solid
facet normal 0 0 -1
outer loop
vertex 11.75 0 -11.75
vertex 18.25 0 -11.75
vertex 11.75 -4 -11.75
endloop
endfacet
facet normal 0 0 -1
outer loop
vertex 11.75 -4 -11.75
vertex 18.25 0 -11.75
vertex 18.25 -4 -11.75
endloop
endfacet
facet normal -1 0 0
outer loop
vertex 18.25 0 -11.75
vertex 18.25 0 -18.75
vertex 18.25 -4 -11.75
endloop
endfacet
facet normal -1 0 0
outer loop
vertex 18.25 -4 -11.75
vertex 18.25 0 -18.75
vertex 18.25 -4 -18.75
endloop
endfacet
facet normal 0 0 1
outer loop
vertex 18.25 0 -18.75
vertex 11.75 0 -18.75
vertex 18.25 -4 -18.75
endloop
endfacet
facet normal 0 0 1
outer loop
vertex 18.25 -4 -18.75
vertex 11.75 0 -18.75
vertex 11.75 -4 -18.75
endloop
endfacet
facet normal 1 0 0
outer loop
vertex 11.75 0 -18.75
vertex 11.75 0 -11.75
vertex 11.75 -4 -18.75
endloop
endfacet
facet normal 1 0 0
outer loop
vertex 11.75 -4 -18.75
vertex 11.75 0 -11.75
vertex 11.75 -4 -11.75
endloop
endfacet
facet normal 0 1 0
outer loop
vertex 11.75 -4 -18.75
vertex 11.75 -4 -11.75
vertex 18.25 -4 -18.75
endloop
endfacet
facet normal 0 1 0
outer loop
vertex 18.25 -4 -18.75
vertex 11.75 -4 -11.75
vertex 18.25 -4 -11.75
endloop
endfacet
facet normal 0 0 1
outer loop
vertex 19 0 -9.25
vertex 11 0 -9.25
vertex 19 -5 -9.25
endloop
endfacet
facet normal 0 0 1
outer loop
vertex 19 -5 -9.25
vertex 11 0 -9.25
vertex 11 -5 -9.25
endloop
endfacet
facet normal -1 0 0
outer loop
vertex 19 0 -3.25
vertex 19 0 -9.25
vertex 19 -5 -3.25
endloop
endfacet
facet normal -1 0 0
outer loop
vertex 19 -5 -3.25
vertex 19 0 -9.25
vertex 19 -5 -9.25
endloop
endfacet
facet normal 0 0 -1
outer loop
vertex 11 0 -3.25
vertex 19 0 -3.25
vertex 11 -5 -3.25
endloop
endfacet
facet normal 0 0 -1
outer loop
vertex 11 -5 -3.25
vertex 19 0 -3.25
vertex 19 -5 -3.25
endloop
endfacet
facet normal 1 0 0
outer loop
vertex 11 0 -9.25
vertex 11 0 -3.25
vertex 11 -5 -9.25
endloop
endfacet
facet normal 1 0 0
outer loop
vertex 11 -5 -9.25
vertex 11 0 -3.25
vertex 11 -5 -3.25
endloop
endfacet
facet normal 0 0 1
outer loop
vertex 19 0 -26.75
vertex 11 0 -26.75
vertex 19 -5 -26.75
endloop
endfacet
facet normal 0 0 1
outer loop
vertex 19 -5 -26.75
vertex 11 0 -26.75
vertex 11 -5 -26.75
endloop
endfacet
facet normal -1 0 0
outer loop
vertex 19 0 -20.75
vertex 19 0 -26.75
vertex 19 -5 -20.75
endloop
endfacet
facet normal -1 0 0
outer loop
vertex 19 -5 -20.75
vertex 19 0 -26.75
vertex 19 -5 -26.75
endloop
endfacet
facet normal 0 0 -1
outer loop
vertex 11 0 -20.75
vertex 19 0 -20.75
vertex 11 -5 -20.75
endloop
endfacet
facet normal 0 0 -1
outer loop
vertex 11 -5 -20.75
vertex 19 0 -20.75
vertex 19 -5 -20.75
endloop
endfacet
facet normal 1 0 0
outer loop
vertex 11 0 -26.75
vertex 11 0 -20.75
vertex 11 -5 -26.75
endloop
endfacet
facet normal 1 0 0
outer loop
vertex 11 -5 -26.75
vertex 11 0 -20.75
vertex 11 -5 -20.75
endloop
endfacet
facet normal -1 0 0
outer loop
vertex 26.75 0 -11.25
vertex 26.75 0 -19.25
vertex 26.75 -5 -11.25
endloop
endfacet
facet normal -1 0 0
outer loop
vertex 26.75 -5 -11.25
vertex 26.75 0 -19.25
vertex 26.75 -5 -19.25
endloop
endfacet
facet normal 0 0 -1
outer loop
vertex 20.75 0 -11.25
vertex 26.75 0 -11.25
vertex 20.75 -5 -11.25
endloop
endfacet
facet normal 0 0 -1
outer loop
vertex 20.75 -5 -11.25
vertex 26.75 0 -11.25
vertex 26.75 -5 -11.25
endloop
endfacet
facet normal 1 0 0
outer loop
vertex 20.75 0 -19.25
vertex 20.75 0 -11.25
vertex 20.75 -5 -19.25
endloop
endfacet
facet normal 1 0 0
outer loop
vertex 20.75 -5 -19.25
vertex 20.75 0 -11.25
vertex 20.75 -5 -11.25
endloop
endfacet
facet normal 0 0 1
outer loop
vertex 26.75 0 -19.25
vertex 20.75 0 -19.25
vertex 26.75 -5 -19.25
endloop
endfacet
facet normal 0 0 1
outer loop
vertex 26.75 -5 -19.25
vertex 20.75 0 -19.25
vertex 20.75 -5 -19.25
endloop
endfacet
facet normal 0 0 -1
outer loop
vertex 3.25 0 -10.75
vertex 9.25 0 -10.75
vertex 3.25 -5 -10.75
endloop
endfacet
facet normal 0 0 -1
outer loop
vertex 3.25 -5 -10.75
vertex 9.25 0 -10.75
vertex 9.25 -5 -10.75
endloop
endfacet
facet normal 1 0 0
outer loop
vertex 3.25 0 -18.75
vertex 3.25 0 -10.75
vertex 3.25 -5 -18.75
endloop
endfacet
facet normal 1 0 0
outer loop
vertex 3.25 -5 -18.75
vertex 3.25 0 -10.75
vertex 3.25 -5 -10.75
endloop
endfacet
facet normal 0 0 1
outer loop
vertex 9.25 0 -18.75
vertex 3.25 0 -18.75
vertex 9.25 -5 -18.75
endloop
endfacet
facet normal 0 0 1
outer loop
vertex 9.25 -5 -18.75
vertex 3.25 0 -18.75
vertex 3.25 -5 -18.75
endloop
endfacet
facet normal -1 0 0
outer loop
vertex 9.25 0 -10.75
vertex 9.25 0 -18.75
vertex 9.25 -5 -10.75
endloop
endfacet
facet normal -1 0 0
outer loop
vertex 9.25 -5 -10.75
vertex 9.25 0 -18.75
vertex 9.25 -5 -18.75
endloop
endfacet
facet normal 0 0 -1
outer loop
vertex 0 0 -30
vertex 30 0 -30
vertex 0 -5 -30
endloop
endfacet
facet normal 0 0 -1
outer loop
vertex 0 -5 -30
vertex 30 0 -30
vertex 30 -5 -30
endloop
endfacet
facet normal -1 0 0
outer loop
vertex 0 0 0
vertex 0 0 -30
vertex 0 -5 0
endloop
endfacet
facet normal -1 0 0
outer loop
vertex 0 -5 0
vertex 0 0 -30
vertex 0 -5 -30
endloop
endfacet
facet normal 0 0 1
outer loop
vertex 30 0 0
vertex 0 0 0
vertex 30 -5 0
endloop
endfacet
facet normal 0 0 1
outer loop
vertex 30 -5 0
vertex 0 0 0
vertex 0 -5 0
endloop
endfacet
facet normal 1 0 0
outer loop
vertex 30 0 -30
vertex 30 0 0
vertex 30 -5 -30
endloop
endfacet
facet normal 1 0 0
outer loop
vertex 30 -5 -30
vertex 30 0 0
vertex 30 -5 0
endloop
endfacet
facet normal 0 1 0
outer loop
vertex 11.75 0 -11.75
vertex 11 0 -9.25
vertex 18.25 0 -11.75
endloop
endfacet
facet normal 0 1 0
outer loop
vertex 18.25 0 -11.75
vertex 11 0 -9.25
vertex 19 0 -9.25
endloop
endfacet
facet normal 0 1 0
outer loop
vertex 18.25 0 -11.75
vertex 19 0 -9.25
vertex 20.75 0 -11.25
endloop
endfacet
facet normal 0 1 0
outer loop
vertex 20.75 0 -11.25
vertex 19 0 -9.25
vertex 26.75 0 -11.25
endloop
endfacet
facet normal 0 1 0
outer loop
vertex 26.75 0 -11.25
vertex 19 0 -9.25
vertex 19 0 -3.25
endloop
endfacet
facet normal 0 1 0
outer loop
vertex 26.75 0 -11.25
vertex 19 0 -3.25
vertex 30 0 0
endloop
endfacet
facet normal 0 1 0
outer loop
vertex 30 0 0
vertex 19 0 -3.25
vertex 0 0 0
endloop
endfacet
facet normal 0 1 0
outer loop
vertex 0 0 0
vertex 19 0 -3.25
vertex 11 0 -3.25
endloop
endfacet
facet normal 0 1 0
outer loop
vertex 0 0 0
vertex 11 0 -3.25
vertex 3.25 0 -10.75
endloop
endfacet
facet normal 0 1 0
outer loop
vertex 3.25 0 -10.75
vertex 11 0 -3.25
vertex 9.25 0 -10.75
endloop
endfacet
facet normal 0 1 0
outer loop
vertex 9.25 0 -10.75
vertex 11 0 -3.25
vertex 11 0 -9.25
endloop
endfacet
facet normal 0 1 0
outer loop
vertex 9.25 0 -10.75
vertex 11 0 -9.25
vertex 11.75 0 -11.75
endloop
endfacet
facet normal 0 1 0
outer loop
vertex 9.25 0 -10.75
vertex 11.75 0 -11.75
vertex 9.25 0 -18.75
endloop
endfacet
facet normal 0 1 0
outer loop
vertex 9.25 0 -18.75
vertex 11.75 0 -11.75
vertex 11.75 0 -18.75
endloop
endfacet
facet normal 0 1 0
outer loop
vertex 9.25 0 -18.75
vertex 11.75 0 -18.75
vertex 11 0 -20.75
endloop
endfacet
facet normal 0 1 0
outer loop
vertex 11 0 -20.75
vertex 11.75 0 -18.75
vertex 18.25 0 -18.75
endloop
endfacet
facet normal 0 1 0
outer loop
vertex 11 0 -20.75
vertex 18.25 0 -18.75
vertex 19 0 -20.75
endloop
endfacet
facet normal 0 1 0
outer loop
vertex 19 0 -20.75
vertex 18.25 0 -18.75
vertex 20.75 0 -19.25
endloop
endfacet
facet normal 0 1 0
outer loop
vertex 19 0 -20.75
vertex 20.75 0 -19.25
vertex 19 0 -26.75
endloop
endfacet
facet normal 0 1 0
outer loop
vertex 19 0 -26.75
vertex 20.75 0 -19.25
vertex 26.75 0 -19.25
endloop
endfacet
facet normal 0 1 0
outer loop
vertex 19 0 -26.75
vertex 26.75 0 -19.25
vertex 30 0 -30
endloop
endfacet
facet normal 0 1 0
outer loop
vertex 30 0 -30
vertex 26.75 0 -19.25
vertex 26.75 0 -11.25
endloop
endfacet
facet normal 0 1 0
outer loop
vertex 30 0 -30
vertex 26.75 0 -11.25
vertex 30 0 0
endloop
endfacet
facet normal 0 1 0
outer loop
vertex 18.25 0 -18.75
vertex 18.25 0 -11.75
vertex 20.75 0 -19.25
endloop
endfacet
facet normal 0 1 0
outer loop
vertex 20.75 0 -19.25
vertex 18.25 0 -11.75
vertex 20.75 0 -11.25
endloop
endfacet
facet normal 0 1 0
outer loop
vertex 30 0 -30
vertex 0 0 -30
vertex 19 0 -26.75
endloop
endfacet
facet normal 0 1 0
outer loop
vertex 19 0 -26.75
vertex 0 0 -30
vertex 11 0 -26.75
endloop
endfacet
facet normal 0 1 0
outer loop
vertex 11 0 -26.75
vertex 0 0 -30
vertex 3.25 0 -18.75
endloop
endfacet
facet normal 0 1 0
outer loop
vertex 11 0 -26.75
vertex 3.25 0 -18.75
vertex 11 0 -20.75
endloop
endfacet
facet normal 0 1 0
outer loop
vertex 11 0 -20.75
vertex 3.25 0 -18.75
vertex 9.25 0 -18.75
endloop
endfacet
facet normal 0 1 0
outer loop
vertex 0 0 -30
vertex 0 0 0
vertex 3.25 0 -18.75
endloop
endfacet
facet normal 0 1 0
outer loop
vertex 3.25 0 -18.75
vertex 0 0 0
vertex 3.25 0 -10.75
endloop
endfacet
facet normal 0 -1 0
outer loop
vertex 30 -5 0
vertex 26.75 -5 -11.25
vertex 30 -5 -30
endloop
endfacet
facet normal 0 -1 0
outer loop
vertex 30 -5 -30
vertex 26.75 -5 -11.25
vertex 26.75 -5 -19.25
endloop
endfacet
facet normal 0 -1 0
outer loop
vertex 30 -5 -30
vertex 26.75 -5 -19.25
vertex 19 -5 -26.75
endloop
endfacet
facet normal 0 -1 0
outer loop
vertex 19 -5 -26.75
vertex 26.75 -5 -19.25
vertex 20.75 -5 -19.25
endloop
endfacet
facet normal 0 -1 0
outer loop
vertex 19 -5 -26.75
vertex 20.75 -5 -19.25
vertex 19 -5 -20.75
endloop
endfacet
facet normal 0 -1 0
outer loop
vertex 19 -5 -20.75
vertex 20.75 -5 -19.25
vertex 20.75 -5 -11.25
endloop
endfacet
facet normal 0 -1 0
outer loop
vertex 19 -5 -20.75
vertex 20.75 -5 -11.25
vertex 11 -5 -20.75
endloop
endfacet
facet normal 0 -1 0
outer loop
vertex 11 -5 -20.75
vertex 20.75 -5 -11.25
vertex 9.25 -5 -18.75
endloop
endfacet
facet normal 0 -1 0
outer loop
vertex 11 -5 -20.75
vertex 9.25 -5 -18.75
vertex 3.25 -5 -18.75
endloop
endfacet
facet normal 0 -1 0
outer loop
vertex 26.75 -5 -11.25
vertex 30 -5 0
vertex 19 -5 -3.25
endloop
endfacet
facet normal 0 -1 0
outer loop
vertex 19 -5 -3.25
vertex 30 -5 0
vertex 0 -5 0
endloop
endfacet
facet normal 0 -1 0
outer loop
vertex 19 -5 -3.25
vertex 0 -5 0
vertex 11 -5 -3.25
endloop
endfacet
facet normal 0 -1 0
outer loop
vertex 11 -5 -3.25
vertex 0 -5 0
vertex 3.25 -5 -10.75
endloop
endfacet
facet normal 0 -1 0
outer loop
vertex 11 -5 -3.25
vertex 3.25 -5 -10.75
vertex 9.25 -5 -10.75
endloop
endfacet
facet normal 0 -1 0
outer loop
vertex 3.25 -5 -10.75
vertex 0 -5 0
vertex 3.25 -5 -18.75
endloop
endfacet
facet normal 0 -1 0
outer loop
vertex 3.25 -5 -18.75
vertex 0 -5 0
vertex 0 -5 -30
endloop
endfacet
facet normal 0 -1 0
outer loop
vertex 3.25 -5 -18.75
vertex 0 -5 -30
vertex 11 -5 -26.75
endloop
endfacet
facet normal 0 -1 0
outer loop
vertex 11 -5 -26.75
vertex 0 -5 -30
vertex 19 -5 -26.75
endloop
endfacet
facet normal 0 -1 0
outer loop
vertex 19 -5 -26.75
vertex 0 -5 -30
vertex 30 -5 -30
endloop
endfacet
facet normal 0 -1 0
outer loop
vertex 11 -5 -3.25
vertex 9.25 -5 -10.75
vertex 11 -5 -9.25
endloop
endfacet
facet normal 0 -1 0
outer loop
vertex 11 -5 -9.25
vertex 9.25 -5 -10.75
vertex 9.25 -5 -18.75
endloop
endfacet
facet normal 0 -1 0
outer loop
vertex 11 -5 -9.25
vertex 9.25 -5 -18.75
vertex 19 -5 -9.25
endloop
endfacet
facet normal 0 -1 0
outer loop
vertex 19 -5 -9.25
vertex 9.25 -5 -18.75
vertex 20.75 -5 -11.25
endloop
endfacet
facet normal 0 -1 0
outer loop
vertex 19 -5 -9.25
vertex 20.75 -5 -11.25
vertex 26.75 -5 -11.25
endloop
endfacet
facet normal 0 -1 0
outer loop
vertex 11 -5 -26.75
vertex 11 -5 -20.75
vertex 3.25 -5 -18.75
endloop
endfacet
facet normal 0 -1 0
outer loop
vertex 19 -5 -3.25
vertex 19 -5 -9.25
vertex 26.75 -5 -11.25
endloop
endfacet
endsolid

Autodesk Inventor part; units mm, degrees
ref_plane "YZ Plane" through (0, 0, 0) normal (1, 0, 0) x (0, 1, 0)
ref_plane "XZ Plane" through (0, 0, 0) normal (0, 1, 0) x (-1, 0, 0)
ref_plane "XY Plane" through (0, 0, 0) normal (0, 0, 1) x (1, 0, 0)
sketch "Sketch1" plane through (0, 0, 0) normal (0, 1, 0) x (-1, 0, 0)
  point P0 (0, 0)
sketch "Sketch2" plane through (0, 0, 0) normal (0, 1, 0) x (-1, 0, 0)
  line L0 (0, 0) -> (-30, 0)
  line L1 (-30, 0) -> (-30, -30)
  line L2 (-30, -30) -> (0, -30)
  line L3 (0, -30) -> (0, 0)
  line L4 (0, -30) -> (-30, 0) construction
  line L5 (0, 0) -> (-30, -30) construction
  line L6 (-15, -15) -> (0, -15) construction
  line L7 (-15, -15) -> (-30, -15) construction
  line L8 (-15, -15) -> (-15, -30) construction
  line L9 (-15, -15) -> (-15, 0) construction
  line L10 (-15, -15) -> (-9.25, -15) construction
  line L11 (-15, -17.4158) -> (-15, -15) construction
  line L12 (-15, -15) -> (-15, -20.75) construction
  line L13 (-15, -15) -> (-15, -9.25) construction
  line L14 (-15, -15) -> (-9.25, -15) construction
  line L15 (-15, -15) -> (-20.75, -15) construction
  line L16 (-15, -20.75) -> (-9.25, -15) construction
  line L17 (-9.25, -15) -> (-9.25, -20.75) construction
  line L18 (-9.25, -20.75) -> (-15, -20.75) construction
  line L19 (-15, -20.75) -> (-20.75, -20.75) construction
  line L20 (-20.75, -20.75) -> (-20.75, -15) construction
  line L21 (-9.25, -15) -> (-9.25, -9.25) construction
  line L22 (-15, -9.25) -> (-9.25, -9.25) construction
  line L23 (-15, -9.25) -> (-20.75, -9.25) construction
  line L24 (-20.75, -9.25) -> (-20.75, -15) construction
  line L25 (-15, -9.25) -> (-11, -9.25) construction
  line L26 (-15, -9.25) -> (-19, -9.25) construction
  line L27 (-11, -9.25) -> (-19, -9.25)
  line L28 (-11, -9.25) -> (-11, -3.25)
  line L29 (-11, -3.25) -> (-19, -3.25)
  line L30 (-19, -3.25) -> (-19, -9.25)
  line L31 (-11, -20.75) -> (-19, -20.75)
  line L32 (-19, -20.75) -> (-19, -26.75)
  line L33 (-19, -26.75) -> (-11, -26.75)
  line L34 (-11, -26.75) -> (-11, -20.75)
  line L35 (-9.25, -9.25) -> (-9.25, -10.75)
  line L36 (-9.25, -20.75) -> (-9.25, -18.75)
  line L37 (-9.25, -18.75) -> (-9.25, -19.25)
  line L38 (-9.25, -18.75) -> (-9.25, -10.75)
  line L39 (-9.25, -10.75) -> (-3.25, -10.75)
  line L40 (-3.25, -10.75) -> (-3.25, -18.75)
  line L41 (-3.25, -18.75) -> (-9.25, -18.75)
  line L42 (-9.25, -19.25) -> (-20.75, -19.25) construction
  line L43 (-20.75, -19.25) -> (-20.75, -11.25)
  line L44 (-20.75, -11.25) -> (-26.75, -11.25)
  line L45 (-26.75, -11.25) -> (-26.75, -19.25)
  line L46 (-26.75, -19.25) -> (-20.75, -19.25)
  line L47 (-9.25, -18.75) -> (-11.75, -18.75) construction
  line L48 (-11.75, -18.75) -> (-11.75, -10.75) construction
  line L49 (-11.75, -10.75) -> (-9.25, -10.75) construction
  line L50 (-20.75, -19.25) -> (-18.25, -19.25) construction
  line L51 (-18.25, -19.25) -> (-18.25, -11.25) construction
  line L52 (-18.25, -11.25) -> (-20.75, -11.25) construction
  line L53 (-9.25, -10.75) -> (-9.25, -11.75) construction
  line L54 (-9.25, -11.75) -> (-11.75, -11.75) construction
  line L55 (-20.75, -11.25) -> (-20.75, -11.75) construction
  line L56 (-20.75, -11.75) -> (-18.25, -11.75) construction
  line L57 (-11.75, -18.75) -> (-20.75, -18.75) construction
  line L58 (-18.25, -18.75) -> (-18.25, -11.75) construction
  line L59 (-15, -18.75) -> (-14.25, -18.75) construction
  line L60 (-15, -18.75) -> (-15.75, -18.75) construction
  line L61 (-11.75, -18.75) -> (-11.75, -11.75)
  line L62 (-11.75, -18.75) -> (-14.25, -18.75)
  line L63 (-11.75, -11.75) -> (-14.25, -11.75)
  line L64 (-15.75, -18.75) -> (-18.25, -18.75)
  line L65 (-18.25, -18.75) -> (-18.25, -11.75)
  line L66 (-18.25, -11.75) -> (-15.75, -11.75)
  line L67 (-14.25, -11.75) -> (-15.75, -11.75)
  line L68 (-14.25, -18.75) -> (-15.75, -18.75)
  dimension "d0" = 30
  dimension "d1" = 30
  dimension "d3" = 5.75
  dimension "d4" = 5.75
  dimension "d5" = 5.75
  dimension "d6" = 5.75
  dimension "d7" = 4
  dimension "d8" = 4
  dimension "d9" = 6
  dimension "d10" = 6
  dimension "d11" = 8
  dimension "d12" = 1.5
  dimension "d13" = 2
  dimension "d14" = 0.5
  dimension "d15" = 6
  dimension "d16" = 8
  dimension "d17" = 6
  dimension "d18" = 2.5
  dimension "d19" = 2.5
  dimension "d20" = 1
  dimension "d21" = 0.75
  dimension "d22" = 0.75
extrude "Extrusion1" add sketch "Sketch2" against normal blind 5 contours L3 L2 L1 L0 | L62 L68 L64 L65 L66 L67 L63 L61
extrude "Extrusion5" cut sketch "Sketch2" against normal blind 4 contours L62 L68 L64 L65 L66 L67 L63 L61
properties part number "switch_test_v1_3DPrint"
